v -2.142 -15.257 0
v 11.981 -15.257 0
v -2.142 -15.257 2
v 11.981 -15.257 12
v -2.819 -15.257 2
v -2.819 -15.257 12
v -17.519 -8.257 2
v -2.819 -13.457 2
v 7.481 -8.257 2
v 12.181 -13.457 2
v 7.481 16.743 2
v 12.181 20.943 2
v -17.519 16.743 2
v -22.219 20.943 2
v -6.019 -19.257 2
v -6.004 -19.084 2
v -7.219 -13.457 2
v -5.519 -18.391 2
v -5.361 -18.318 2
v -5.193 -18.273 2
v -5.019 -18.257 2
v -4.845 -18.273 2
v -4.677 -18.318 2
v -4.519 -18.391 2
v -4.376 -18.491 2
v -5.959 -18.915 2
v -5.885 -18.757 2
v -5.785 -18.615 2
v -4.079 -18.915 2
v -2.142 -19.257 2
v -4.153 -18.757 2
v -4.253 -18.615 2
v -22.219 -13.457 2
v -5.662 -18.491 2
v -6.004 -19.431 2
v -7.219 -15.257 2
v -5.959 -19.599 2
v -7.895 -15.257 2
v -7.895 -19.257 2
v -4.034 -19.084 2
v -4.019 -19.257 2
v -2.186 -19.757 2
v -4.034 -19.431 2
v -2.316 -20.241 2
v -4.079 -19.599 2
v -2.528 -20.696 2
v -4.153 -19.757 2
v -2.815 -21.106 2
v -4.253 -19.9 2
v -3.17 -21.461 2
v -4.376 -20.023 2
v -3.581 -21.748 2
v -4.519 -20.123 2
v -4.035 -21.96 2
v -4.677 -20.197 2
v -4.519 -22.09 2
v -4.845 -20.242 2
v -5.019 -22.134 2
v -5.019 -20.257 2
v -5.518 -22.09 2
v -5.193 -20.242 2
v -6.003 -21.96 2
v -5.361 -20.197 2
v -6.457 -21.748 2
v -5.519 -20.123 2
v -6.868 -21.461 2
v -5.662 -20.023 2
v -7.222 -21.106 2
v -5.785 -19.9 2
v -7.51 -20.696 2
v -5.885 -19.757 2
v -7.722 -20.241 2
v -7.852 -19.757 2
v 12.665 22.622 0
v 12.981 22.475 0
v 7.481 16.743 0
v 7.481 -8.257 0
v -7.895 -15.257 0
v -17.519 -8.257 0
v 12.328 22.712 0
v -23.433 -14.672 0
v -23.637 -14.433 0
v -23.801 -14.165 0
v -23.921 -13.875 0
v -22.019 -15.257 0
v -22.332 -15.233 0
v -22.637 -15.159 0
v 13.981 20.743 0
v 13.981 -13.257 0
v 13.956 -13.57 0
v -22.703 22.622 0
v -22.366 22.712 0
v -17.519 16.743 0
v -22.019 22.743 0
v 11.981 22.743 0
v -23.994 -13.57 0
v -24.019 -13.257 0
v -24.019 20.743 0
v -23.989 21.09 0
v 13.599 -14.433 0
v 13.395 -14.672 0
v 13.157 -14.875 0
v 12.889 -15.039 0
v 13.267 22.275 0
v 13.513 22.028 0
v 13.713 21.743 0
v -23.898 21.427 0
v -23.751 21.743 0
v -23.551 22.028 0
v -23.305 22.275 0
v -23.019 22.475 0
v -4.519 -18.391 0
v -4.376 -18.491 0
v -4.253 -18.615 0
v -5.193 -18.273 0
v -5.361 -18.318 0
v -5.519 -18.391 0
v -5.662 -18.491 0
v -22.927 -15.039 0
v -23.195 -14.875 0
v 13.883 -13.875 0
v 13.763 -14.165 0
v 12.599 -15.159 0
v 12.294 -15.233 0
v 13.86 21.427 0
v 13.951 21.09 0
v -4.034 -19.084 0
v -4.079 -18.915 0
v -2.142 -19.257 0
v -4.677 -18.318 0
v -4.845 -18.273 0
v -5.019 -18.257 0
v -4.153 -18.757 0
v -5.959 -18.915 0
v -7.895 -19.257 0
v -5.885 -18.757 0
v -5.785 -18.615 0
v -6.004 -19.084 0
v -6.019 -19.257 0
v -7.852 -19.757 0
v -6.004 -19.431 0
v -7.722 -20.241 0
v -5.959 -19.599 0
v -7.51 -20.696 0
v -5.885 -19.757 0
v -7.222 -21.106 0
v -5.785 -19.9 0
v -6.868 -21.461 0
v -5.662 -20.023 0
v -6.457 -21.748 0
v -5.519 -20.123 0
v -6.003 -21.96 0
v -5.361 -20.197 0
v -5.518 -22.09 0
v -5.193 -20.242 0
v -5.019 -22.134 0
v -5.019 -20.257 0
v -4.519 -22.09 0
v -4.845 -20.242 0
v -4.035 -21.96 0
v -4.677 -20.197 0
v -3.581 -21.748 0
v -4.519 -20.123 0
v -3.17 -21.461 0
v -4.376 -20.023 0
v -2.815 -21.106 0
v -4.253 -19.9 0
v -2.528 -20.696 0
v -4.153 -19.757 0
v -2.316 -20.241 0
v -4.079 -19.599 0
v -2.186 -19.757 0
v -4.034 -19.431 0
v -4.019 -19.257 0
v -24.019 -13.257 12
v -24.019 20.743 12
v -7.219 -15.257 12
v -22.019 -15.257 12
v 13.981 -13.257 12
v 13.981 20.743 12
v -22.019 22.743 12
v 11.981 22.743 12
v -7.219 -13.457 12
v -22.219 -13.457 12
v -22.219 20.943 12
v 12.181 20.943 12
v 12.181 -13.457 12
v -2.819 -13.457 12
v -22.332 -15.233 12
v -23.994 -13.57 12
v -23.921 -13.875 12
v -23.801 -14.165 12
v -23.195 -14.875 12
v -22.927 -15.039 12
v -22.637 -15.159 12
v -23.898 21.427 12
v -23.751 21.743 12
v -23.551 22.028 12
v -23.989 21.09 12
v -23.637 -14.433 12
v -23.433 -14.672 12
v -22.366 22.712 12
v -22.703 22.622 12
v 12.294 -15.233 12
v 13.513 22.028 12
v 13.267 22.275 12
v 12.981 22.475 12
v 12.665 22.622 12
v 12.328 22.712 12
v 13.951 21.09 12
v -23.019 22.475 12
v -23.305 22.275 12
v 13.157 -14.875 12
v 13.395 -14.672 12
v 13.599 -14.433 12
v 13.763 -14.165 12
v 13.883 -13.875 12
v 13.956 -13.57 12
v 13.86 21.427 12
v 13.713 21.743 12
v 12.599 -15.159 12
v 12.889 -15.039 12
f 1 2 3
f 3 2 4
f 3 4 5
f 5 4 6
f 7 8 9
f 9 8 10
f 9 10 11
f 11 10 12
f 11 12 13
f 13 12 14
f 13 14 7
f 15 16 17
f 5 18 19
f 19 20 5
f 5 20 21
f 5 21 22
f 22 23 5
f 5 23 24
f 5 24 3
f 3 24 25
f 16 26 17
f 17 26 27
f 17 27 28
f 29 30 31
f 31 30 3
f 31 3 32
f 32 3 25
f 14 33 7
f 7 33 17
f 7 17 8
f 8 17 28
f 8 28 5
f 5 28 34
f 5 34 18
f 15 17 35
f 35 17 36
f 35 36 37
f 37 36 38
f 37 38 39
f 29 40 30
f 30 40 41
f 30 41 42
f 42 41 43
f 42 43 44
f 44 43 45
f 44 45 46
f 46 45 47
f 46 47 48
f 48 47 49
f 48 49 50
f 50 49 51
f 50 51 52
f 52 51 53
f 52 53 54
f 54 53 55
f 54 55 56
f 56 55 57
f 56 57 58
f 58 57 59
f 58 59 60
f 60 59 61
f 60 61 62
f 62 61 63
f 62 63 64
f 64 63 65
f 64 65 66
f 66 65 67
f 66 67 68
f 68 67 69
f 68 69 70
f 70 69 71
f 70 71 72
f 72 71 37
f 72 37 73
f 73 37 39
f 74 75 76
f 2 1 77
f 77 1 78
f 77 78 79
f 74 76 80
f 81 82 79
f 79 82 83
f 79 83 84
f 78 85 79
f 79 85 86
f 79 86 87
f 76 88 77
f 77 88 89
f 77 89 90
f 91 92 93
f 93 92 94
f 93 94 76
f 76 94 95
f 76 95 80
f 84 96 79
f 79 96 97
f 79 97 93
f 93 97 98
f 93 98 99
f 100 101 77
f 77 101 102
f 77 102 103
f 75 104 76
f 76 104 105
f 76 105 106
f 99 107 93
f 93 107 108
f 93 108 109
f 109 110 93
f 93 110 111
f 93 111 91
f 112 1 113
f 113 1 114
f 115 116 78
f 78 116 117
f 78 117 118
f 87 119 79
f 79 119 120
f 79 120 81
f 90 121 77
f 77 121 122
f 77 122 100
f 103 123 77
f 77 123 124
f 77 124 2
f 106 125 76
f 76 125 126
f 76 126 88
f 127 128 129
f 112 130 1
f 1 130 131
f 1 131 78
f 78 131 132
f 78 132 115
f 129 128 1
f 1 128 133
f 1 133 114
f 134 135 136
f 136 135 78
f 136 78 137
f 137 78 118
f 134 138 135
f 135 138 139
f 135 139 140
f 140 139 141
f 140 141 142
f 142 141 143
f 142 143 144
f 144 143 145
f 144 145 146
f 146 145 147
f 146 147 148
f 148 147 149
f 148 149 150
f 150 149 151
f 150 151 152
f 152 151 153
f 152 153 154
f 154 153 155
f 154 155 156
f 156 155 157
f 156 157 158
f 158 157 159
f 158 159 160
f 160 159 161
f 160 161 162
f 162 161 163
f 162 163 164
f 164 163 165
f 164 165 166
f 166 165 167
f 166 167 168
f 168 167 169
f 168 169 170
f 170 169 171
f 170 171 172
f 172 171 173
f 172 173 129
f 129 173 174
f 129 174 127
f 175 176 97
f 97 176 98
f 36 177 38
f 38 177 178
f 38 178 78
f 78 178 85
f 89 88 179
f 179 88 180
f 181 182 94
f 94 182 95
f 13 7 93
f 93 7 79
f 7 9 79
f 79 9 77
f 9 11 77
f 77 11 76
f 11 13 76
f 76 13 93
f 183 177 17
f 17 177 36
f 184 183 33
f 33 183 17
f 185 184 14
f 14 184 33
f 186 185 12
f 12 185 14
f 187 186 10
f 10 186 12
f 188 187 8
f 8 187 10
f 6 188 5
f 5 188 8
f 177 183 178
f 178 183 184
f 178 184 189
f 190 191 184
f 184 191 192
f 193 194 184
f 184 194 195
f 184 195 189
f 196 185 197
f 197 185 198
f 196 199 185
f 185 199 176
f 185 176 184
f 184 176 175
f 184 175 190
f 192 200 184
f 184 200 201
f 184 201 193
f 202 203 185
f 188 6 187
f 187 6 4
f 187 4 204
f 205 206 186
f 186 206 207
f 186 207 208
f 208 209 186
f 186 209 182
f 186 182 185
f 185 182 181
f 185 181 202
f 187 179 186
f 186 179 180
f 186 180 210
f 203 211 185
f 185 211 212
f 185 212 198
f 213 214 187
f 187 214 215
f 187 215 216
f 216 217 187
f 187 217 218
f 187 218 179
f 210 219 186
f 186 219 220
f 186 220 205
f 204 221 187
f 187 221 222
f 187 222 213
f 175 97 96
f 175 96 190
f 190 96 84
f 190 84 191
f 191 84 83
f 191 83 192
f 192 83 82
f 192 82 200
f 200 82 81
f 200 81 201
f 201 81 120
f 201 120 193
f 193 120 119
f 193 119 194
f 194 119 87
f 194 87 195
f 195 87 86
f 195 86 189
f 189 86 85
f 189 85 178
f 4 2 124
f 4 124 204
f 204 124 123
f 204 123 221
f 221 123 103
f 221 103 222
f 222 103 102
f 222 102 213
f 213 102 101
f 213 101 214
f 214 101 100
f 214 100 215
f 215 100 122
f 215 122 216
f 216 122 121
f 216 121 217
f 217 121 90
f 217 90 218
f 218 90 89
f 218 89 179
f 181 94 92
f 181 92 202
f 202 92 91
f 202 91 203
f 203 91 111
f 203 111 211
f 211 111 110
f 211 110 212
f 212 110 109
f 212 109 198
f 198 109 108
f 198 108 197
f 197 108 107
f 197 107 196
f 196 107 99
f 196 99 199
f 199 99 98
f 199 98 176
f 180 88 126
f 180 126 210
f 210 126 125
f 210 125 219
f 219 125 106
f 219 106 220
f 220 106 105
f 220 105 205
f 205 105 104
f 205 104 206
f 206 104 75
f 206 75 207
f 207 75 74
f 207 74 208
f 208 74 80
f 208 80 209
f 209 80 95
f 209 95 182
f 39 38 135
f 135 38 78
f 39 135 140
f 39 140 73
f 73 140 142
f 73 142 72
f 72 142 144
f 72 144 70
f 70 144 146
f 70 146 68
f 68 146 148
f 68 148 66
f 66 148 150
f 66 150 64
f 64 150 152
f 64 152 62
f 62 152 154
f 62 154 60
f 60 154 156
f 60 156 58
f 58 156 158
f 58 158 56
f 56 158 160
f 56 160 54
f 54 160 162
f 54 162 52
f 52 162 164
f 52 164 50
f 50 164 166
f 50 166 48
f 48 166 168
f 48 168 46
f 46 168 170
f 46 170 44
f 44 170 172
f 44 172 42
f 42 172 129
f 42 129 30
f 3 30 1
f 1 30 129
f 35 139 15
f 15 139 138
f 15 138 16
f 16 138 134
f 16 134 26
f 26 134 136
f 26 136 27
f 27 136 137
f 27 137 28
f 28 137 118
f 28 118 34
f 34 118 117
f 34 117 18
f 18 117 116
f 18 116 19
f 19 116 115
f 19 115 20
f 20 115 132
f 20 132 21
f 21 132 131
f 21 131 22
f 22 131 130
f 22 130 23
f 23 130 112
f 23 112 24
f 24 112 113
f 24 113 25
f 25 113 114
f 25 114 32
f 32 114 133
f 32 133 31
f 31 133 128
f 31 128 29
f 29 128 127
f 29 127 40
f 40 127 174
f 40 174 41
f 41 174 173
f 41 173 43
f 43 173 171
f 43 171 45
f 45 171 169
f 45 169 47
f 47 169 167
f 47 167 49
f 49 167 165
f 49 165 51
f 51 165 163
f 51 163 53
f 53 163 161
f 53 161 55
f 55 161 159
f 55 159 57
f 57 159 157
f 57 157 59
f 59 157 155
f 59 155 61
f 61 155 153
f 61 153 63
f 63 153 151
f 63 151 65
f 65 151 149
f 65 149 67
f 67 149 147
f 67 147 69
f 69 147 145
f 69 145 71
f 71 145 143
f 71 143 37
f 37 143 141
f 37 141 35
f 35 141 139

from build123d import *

# Parameters (mm, degrees)
ESQUISSE1_W        = 38
ESQUISSE1_H        = 38
ESQUISSE1_W_2      = 25
ESQUISSE1_H_2      = 25
BOSS_EXTRU_1_DEPTH = 2
BOSS_EXTRU_2_DEPTH = 10
CONG_1_R           = 2
ESQUISSE3_R        = 1
BOSS_EXTRU_3_DEPTH = 2


# Read off the part's stored shape, not the designer's step: Boss.-Extru.2
with BuildPart() as part:
    # Esquisse1 → Boss.-Extru.1 (new body)
    with BuildSketch(Plane.XY):
        with Locations((-5.018947996, 3.742614476)):
            Rectangle(ESQUISSE1_W, ESQUISSE1_H)
        with Locations((-5.018947996, 4.242614476)):
            Rectangle(ESQUISSE1_W_2, ESQUISSE1_H_2, mode=Mode.SUBTRACT)
    extrude(amount=BOSS_EXTRU_1_DEPTH)

    # Boss.-Extru.2 outline → Boss.-Extru.2 (add)
    with BuildSketch(Plane.XY.offset(2)):
        Polygon((-24.018947996, 22.742614476), (-24.018947996, -15.257385524), (-7.218947996, -15.257385524), (-7.218947996, -13.457385524), (-22.218947996, -13.457385524), (-22.218947996, 20.942614476), (12.181052004, 20.942614476), (12.181052004, -13.457385524), (-2.818947996, -13.457385524), (-2.818947996, -15.257385524), (13.981052004, -15.257385524), (13.981052004, 22.742614476), align=None)
    extrude(amount=BOSS_EXTRU_2_DEPTH)

    # Congé1
    cong_1_edges = [part.edges().sort_by_distance(p)[0] for p in [
        (-24.018947996, 22.742614476, 6),
        (13.981052004, 22.742614476, 7),
        (13.981052004, -15.257385524, 7),
        (-24.018947996, -15.257385524, 7),
    ]]
    fillet(cong_1_edges, radius=CONG_1_R)

    # Esquisse3 → Boss.-Extru.3 (add)
    with BuildSketch(Plane(origin=(0, 0, 0), x_dir=(-1, 0, 0), z_dir=(0, 0, -1))):
        with BuildLine():
            Line((2.142498892, -15.257385524), (2.142498892, -19.257385524))
            ThreePointArc((2.142498892, -19.257385524), (5.018947996, -22.133834629), (7.895397101, -19.257385524))
            Line((7.895397101, -19.257385524), (7.895397101, -15.257385524))
            Line((7.895397101, -15.257385524), (2.142498892, -15.257385524))
        make_face()
        with Locations((5.018947996, -19.257385524)):
            Circle(ESQUISSE3_R, mode=Mode.SUBTRACT)
    extrude(amount=-BOSS_EXTRU_3_DEPTH)


solid = part.part
